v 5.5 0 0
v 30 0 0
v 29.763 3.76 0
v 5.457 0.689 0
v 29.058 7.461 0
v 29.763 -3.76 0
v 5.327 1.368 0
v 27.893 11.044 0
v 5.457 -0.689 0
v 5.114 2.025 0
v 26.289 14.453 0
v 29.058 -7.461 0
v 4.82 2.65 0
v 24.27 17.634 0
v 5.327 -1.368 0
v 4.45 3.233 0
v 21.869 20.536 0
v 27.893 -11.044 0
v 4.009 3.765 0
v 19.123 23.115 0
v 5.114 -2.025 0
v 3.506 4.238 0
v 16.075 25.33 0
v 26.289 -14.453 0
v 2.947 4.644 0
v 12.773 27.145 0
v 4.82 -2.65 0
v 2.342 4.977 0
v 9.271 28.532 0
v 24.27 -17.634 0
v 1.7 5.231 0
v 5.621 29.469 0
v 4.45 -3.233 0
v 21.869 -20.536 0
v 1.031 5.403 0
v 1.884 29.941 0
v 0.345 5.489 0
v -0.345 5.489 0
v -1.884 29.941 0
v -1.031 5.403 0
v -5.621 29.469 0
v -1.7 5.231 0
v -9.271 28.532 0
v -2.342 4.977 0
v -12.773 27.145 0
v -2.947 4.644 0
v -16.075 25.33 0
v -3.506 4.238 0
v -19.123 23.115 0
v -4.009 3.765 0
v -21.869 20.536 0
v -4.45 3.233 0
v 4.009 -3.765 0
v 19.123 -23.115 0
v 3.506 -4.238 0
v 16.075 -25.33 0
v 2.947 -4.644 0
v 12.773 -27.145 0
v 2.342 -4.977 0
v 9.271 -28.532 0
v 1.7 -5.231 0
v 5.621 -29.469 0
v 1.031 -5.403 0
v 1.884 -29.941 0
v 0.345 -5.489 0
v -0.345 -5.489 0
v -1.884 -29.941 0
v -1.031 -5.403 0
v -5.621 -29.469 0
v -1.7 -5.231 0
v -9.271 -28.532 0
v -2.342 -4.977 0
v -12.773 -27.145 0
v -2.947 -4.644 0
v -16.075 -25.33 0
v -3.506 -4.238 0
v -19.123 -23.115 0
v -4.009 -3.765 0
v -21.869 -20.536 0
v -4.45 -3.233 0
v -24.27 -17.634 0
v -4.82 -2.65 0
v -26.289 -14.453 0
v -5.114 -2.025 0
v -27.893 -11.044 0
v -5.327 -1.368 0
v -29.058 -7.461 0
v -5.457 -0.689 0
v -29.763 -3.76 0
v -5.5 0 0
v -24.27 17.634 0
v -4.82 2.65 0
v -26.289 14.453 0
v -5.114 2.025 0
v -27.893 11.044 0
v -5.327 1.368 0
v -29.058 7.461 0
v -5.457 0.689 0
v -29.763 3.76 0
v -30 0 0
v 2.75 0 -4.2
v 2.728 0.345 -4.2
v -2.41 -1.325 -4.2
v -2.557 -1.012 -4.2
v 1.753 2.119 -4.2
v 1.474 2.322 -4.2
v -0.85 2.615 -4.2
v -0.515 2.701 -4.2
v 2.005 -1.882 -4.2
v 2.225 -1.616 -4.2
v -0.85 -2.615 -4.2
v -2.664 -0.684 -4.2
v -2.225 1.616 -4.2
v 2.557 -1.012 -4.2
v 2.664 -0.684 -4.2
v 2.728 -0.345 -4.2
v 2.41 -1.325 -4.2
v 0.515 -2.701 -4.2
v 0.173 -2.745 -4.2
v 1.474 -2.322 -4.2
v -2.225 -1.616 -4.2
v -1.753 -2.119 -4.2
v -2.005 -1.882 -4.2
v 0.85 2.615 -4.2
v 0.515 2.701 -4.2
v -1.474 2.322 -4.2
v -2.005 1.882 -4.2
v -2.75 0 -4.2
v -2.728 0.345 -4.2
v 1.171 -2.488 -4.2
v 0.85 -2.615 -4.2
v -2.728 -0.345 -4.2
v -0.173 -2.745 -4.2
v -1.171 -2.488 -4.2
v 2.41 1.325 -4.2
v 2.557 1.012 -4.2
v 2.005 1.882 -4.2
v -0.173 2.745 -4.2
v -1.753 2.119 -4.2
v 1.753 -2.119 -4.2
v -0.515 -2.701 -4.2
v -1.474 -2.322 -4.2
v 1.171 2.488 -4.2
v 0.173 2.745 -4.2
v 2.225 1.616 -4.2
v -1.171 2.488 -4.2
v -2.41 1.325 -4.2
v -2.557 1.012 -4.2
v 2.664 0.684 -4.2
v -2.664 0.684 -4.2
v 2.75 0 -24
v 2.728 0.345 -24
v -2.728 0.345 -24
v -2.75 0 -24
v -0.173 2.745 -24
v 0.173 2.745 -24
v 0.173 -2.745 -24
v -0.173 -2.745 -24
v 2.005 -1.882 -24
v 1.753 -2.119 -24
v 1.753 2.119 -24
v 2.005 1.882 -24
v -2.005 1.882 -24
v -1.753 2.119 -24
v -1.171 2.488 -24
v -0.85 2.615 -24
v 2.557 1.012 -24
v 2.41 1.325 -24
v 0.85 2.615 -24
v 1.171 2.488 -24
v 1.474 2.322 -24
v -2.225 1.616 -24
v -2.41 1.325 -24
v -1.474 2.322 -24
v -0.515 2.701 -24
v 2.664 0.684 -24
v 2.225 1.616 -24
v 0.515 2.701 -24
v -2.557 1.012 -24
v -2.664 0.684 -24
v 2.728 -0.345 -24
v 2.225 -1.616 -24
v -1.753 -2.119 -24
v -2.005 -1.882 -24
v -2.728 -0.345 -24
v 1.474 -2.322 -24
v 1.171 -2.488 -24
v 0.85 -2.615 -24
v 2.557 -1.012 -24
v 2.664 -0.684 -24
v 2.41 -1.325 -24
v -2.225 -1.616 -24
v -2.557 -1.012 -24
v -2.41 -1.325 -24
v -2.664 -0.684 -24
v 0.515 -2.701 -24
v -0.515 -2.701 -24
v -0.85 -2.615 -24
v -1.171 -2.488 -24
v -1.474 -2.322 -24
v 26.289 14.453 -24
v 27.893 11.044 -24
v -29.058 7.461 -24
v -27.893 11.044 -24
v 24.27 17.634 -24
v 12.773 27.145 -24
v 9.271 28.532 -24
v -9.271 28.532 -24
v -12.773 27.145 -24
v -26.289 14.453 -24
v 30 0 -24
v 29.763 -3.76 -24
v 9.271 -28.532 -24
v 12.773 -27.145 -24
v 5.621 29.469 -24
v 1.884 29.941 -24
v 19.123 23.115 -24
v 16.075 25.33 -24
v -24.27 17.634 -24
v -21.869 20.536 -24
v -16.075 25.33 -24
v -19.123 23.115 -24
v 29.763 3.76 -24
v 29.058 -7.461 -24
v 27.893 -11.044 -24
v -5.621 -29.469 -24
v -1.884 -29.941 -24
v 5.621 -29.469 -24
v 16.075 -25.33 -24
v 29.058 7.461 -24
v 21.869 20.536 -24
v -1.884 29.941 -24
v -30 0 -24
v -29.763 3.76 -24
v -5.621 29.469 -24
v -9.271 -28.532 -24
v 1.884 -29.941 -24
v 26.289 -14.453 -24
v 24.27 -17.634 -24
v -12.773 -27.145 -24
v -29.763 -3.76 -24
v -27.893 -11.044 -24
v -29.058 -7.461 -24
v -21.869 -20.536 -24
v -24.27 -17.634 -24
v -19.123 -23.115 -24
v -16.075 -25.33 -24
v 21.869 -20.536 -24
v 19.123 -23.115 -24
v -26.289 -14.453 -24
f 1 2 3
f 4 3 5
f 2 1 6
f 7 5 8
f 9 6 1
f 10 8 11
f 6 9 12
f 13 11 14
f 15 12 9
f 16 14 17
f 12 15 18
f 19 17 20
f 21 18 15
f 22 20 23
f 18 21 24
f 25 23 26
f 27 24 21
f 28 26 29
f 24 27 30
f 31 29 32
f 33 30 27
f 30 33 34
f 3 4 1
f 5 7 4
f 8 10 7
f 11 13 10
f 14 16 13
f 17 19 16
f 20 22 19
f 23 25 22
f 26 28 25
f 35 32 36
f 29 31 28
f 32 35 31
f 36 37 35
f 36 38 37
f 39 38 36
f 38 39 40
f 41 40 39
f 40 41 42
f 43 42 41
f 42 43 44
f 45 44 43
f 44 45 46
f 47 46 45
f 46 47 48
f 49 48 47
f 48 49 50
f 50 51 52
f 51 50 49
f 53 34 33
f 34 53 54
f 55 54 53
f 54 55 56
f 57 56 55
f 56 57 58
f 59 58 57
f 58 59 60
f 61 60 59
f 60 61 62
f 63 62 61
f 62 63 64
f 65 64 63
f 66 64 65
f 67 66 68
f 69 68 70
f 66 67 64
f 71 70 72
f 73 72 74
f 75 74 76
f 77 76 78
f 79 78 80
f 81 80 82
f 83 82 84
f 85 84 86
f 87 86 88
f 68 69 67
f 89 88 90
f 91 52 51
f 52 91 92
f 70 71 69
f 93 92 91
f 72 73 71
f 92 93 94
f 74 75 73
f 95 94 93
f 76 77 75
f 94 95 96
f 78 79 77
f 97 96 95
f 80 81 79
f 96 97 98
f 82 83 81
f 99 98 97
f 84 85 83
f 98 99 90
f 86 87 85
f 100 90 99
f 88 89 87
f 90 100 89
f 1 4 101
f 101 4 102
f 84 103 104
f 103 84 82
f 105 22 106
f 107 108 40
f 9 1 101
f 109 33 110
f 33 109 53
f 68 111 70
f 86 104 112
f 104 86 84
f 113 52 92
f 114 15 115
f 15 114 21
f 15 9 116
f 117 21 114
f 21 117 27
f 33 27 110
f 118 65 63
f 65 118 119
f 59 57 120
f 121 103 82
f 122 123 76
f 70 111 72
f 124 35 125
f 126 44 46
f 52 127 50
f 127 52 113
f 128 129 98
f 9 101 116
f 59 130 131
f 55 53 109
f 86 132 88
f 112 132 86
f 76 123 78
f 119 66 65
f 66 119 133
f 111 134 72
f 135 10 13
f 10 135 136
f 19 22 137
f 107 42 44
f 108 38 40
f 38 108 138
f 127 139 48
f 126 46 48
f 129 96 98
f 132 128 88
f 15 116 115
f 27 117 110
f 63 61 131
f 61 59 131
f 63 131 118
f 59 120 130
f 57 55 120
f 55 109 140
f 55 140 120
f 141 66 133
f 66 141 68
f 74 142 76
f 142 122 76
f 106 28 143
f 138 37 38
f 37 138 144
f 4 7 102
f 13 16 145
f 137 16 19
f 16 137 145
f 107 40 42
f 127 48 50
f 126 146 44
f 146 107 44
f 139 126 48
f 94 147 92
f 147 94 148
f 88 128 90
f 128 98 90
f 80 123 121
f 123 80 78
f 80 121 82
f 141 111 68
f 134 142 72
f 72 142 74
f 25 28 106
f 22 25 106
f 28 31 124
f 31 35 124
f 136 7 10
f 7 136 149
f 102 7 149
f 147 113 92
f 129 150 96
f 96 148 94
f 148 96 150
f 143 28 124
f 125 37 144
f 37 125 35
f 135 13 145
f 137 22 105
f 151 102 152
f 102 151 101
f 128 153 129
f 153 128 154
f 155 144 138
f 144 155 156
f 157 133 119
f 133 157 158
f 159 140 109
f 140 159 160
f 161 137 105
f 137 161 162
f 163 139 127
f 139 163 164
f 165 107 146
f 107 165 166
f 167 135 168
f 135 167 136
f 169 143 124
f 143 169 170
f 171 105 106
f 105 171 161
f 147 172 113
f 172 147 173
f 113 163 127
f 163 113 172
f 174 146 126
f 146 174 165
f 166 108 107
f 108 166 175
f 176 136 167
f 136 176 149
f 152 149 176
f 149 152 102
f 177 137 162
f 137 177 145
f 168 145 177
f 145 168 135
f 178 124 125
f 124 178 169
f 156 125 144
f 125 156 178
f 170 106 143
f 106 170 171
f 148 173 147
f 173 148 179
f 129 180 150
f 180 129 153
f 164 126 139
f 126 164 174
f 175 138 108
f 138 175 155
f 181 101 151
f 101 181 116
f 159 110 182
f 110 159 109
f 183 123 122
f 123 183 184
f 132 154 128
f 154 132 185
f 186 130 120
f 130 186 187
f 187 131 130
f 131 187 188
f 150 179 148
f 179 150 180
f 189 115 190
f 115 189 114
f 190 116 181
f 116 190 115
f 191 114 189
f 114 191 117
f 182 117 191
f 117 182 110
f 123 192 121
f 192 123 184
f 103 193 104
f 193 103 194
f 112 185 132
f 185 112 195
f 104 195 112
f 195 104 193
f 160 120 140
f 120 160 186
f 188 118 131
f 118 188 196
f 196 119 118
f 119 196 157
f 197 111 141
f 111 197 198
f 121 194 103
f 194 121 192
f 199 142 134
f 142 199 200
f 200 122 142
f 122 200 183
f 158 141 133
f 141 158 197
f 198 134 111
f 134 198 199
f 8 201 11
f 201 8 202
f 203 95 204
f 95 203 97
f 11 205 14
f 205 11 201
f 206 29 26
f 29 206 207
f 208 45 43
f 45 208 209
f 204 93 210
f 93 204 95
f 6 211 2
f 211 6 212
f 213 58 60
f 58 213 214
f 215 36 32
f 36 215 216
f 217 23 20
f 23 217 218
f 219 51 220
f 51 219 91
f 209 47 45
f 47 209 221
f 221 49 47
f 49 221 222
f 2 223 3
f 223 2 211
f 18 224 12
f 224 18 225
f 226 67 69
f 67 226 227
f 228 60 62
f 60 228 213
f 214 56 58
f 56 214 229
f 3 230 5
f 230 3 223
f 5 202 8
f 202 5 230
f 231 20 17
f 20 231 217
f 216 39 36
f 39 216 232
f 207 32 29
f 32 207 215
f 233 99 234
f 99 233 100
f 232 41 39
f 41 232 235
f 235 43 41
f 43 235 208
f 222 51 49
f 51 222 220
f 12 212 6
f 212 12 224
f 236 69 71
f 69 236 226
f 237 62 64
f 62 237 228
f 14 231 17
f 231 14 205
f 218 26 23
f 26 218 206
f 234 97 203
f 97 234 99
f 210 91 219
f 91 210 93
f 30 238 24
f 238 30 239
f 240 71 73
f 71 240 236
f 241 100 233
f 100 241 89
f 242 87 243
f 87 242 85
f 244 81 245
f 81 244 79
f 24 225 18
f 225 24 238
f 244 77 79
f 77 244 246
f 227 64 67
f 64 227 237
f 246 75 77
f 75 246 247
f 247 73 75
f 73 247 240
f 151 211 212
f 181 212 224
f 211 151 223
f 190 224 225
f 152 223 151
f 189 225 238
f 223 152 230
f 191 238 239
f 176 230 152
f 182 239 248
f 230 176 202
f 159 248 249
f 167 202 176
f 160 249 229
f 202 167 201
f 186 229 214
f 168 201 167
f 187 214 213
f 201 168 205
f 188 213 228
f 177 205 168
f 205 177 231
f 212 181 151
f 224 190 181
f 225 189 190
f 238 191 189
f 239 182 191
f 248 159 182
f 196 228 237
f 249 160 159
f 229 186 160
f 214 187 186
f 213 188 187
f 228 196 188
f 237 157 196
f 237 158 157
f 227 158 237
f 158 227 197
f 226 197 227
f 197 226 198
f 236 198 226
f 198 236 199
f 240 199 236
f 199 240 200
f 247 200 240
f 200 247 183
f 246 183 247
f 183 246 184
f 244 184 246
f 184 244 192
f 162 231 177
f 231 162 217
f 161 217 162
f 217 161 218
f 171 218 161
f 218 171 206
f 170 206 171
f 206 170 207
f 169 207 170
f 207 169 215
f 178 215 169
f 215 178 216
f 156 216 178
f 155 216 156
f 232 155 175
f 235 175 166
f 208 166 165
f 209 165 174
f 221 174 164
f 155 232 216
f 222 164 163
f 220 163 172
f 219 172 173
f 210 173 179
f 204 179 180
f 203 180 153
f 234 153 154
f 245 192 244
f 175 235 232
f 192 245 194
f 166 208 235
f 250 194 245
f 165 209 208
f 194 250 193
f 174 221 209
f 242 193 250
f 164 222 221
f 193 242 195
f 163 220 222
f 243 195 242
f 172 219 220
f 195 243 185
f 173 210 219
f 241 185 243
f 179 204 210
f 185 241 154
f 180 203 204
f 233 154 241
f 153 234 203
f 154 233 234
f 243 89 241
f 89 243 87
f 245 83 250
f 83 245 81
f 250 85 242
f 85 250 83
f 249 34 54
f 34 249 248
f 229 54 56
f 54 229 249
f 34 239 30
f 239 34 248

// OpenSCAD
$fn = 50;

difference() {
	union() {
		translate(v = [0, 0, -24.0]) {
			cylinder(h = 24, r = 30.0);
		}
	}
	union() {
		translate(v = [0, 0, 0]) {
			rotate(a = [0, 0, 0]) {
				difference() {
					union() {
						translate(v = [0, 0, -27.0]) {
							cylinder(h = 27, r = 2.25);
						}
						translate(v = [0, 0, -4.2]) {
							cylinder(h = 4.2, r1 = 2.75, r2 = 5.5);
						}
						translate(v = [0, 0, -27.0]) {
							cylinder(h = 27, r = 2.75);
						}
						translate(v = [0, 0, -27.0]) {
							cylinder(h = 27, r = 2.25);
						}
					}
					union();
				}
			}
		}
	}
}
